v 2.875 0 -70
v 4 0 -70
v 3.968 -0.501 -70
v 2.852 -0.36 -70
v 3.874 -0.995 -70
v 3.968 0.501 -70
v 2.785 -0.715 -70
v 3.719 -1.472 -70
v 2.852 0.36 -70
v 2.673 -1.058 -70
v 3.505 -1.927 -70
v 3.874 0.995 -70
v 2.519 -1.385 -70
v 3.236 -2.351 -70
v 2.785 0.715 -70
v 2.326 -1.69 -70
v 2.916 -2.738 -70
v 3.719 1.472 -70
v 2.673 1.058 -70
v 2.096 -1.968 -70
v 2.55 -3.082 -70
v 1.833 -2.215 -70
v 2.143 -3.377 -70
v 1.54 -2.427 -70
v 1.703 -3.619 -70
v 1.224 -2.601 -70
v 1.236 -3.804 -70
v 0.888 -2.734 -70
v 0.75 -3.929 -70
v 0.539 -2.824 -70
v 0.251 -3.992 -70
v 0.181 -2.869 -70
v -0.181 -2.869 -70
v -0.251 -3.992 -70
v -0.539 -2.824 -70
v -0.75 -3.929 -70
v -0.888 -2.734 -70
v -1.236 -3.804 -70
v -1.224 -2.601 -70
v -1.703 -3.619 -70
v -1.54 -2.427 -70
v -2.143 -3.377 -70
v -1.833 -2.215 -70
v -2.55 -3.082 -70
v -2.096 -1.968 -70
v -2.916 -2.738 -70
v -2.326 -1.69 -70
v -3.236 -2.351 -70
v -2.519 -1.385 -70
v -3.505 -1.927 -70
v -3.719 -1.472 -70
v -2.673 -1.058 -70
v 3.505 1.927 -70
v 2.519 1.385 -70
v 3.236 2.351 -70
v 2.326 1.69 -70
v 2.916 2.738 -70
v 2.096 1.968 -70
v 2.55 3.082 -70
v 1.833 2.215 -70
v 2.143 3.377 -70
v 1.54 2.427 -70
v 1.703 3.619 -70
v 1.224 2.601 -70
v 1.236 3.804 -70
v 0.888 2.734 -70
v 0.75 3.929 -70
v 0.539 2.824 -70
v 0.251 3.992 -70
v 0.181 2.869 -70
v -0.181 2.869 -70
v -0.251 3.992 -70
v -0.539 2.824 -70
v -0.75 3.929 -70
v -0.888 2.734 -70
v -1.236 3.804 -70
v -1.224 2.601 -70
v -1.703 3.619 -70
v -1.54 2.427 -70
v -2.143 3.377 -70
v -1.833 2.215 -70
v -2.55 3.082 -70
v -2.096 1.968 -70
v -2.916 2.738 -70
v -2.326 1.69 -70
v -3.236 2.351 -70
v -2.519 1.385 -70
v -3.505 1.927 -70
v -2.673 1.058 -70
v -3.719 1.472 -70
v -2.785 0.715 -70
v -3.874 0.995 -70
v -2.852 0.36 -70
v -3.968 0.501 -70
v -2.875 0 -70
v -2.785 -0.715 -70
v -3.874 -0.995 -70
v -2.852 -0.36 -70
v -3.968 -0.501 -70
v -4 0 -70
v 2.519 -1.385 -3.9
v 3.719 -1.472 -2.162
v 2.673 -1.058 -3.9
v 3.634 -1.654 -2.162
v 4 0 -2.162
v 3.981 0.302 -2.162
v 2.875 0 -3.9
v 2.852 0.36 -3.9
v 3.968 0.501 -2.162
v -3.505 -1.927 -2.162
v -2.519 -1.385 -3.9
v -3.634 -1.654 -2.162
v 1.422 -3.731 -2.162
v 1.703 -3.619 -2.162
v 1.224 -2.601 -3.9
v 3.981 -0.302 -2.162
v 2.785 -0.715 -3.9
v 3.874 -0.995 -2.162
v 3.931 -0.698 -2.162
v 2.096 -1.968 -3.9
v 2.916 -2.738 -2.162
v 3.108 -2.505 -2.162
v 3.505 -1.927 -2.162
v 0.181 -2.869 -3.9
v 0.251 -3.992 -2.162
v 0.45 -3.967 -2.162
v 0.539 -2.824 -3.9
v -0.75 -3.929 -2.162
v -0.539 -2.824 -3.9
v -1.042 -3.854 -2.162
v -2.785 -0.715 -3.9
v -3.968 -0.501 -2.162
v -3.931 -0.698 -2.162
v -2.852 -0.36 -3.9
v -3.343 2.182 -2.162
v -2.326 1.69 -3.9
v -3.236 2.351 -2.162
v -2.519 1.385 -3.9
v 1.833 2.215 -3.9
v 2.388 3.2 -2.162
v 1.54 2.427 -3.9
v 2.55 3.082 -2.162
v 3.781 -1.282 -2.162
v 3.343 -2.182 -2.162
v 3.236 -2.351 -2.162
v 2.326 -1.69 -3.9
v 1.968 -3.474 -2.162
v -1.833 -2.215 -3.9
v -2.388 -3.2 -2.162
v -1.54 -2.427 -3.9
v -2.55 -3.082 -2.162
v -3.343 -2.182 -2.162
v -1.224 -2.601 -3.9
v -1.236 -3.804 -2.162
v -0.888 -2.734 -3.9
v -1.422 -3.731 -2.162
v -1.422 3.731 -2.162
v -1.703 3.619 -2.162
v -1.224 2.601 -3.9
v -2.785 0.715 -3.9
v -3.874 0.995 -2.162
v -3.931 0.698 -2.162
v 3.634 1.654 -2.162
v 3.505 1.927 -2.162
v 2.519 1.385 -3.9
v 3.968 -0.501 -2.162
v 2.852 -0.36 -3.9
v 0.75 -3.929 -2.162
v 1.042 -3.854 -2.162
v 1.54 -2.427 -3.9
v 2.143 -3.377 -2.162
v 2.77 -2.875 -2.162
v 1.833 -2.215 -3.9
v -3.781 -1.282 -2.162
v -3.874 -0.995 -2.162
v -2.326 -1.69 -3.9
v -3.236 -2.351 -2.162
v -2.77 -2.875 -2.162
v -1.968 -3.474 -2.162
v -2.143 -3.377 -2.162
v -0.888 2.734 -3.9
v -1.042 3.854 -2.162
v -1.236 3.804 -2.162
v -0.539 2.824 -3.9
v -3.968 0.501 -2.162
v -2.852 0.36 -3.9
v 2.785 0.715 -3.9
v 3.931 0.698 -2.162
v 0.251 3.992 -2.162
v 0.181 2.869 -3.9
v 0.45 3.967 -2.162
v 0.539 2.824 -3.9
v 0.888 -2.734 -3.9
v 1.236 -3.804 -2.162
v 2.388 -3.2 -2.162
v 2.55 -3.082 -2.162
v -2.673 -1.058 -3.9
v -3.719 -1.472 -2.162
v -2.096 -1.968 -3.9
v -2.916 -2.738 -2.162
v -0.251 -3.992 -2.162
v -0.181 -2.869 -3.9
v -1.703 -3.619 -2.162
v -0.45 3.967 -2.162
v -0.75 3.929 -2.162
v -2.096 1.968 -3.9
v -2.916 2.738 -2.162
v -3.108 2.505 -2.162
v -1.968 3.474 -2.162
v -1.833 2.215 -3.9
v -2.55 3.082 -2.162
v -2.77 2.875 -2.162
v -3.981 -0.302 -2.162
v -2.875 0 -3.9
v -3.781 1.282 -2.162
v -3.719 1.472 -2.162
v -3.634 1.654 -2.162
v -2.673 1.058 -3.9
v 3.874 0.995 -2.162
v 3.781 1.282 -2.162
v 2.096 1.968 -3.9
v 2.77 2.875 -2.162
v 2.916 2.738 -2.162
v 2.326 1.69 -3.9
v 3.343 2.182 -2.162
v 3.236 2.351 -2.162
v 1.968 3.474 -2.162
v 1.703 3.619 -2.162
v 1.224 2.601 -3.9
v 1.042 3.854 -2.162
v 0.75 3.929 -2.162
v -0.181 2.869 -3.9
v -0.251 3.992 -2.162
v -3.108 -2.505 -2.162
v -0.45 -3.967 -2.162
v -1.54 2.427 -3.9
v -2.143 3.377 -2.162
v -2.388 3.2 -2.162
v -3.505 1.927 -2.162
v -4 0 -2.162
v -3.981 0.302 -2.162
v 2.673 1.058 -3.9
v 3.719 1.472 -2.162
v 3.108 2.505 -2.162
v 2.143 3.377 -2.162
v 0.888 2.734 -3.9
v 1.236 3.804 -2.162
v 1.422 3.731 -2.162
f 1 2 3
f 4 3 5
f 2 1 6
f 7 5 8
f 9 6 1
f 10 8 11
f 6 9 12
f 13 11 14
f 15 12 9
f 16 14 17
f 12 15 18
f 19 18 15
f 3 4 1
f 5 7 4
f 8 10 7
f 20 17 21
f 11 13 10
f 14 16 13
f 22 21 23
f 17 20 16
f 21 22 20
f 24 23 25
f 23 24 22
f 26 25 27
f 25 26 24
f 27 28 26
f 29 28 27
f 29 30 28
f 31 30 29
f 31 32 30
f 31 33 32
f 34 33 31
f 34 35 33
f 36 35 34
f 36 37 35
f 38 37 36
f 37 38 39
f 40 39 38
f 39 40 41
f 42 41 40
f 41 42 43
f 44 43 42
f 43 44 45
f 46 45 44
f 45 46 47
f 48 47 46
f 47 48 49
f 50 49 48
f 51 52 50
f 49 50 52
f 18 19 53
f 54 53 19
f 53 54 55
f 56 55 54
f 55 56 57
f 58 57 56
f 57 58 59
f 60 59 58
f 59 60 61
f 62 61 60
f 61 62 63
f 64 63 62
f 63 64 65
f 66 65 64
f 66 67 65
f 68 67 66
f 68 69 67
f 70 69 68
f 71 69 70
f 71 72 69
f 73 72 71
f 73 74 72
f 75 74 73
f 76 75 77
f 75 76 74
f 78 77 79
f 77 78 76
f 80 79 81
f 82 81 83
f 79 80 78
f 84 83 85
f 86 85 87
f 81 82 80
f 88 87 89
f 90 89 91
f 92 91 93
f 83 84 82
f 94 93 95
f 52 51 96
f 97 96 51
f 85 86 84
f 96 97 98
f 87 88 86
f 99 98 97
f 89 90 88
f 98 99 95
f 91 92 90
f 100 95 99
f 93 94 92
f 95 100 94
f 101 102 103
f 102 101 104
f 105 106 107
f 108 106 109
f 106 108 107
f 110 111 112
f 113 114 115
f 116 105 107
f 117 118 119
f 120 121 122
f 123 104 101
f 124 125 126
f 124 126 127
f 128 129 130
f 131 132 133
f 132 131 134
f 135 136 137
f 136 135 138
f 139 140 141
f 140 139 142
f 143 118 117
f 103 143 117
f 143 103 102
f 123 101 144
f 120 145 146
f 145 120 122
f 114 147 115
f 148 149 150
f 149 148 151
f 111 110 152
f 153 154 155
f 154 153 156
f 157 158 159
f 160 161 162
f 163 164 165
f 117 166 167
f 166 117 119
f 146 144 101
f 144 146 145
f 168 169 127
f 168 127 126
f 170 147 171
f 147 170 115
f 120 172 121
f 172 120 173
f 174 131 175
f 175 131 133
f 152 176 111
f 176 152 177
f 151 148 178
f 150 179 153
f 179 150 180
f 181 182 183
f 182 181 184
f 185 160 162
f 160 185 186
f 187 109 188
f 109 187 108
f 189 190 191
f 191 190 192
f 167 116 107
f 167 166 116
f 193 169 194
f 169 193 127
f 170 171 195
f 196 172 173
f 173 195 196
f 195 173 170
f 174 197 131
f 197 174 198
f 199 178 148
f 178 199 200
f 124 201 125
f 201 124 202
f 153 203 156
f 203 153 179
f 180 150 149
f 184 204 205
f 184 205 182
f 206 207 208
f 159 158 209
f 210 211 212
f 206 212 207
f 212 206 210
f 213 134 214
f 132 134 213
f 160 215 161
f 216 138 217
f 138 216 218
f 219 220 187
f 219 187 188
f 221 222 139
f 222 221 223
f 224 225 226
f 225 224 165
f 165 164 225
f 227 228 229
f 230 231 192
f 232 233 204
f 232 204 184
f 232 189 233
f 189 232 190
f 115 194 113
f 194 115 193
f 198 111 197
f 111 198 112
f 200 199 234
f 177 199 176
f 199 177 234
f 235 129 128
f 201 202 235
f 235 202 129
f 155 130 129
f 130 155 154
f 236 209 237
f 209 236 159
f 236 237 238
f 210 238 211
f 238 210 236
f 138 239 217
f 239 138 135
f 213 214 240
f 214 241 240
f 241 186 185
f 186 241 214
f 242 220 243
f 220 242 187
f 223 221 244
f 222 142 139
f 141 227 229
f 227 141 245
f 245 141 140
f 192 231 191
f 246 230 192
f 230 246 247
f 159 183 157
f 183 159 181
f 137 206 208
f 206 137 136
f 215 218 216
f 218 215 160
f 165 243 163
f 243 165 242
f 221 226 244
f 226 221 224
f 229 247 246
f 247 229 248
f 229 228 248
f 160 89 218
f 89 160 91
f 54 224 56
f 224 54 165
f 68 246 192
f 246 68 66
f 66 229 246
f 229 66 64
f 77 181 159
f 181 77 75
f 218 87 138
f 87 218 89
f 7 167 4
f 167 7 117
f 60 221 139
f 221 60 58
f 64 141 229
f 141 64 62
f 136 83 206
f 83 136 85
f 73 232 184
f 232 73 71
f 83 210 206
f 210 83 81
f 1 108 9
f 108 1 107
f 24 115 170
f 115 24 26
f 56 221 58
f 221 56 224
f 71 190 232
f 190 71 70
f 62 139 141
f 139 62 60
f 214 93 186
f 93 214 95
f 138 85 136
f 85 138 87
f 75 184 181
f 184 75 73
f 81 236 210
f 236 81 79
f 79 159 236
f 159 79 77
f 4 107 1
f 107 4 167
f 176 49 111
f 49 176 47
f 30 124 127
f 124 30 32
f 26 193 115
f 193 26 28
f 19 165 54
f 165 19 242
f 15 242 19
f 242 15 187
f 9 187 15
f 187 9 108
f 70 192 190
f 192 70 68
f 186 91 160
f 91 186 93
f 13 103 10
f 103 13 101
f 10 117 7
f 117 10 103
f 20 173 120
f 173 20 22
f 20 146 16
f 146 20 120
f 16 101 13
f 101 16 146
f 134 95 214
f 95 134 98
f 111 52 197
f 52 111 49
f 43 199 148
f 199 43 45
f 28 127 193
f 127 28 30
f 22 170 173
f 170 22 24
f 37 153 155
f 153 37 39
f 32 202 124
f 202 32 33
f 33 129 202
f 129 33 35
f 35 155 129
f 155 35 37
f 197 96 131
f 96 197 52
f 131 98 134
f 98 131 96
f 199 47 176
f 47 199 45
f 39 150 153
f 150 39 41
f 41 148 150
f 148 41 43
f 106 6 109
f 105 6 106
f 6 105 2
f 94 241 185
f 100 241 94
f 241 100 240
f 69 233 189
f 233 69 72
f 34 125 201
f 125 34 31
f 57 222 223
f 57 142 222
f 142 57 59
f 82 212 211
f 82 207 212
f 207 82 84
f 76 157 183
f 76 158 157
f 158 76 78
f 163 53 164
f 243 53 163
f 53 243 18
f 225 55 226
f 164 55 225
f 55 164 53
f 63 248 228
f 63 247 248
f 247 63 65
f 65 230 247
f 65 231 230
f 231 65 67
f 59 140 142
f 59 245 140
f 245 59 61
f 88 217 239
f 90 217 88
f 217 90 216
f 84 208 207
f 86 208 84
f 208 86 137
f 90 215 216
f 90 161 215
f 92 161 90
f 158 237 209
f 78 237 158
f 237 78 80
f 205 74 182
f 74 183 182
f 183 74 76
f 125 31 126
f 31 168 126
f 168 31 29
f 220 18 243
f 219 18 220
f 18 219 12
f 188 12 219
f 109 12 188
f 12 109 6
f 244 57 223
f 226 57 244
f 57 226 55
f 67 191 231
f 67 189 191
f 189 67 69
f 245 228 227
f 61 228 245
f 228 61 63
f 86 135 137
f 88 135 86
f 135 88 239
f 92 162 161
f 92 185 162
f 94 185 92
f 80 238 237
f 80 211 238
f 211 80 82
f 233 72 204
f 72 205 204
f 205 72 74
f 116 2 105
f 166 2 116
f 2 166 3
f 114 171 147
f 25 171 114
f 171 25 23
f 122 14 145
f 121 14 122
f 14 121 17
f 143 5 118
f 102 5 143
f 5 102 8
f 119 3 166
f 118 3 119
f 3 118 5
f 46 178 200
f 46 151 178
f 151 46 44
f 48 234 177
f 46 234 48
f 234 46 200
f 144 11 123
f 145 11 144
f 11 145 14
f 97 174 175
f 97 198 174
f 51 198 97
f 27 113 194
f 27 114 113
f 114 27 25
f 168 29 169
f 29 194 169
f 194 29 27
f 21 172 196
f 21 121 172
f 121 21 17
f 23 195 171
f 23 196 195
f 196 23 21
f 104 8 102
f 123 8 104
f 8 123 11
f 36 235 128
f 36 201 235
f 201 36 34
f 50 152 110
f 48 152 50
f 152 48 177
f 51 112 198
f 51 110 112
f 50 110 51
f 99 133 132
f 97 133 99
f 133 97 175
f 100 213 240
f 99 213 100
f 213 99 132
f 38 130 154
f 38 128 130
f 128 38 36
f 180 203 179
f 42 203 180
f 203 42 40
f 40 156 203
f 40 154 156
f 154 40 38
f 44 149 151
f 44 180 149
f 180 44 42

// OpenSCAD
$fn = 50;


difference() {
	union() {
		translate(v = [0, 0, -70.0000000000]) {
			cylinder(h = 70, r = 4.0000000000);
		}
		cylinder(h = 0, r = 7.0000000000);
	}
	union() {
		translate(v = [0, 0, 0]) {
			rotate(a = [0, 0, 0]) {
				difference() {
					union() {
						#translate(v = [0, 0, -70.0000000000]) {
							cylinder(h = 70, r = 2.6000000000);
						}
						#translate(v = [0, 0, -3.9000000000]) {
							cylinder(h = 3.9000000000, r1 = 2.8750000000, r2 = 5.4000000000);
						}
						#translate(v = [0, 0, -70.0000000000]) {
							cylinder(h = 70, r = 2.8750000000);
						}
						#translate(v = [0, 0, -70.0000000000]) {
							cylinder(h = 70, r = 2.6000000000);
						}
					}
					union();
				}
			}
		}
	}
}
